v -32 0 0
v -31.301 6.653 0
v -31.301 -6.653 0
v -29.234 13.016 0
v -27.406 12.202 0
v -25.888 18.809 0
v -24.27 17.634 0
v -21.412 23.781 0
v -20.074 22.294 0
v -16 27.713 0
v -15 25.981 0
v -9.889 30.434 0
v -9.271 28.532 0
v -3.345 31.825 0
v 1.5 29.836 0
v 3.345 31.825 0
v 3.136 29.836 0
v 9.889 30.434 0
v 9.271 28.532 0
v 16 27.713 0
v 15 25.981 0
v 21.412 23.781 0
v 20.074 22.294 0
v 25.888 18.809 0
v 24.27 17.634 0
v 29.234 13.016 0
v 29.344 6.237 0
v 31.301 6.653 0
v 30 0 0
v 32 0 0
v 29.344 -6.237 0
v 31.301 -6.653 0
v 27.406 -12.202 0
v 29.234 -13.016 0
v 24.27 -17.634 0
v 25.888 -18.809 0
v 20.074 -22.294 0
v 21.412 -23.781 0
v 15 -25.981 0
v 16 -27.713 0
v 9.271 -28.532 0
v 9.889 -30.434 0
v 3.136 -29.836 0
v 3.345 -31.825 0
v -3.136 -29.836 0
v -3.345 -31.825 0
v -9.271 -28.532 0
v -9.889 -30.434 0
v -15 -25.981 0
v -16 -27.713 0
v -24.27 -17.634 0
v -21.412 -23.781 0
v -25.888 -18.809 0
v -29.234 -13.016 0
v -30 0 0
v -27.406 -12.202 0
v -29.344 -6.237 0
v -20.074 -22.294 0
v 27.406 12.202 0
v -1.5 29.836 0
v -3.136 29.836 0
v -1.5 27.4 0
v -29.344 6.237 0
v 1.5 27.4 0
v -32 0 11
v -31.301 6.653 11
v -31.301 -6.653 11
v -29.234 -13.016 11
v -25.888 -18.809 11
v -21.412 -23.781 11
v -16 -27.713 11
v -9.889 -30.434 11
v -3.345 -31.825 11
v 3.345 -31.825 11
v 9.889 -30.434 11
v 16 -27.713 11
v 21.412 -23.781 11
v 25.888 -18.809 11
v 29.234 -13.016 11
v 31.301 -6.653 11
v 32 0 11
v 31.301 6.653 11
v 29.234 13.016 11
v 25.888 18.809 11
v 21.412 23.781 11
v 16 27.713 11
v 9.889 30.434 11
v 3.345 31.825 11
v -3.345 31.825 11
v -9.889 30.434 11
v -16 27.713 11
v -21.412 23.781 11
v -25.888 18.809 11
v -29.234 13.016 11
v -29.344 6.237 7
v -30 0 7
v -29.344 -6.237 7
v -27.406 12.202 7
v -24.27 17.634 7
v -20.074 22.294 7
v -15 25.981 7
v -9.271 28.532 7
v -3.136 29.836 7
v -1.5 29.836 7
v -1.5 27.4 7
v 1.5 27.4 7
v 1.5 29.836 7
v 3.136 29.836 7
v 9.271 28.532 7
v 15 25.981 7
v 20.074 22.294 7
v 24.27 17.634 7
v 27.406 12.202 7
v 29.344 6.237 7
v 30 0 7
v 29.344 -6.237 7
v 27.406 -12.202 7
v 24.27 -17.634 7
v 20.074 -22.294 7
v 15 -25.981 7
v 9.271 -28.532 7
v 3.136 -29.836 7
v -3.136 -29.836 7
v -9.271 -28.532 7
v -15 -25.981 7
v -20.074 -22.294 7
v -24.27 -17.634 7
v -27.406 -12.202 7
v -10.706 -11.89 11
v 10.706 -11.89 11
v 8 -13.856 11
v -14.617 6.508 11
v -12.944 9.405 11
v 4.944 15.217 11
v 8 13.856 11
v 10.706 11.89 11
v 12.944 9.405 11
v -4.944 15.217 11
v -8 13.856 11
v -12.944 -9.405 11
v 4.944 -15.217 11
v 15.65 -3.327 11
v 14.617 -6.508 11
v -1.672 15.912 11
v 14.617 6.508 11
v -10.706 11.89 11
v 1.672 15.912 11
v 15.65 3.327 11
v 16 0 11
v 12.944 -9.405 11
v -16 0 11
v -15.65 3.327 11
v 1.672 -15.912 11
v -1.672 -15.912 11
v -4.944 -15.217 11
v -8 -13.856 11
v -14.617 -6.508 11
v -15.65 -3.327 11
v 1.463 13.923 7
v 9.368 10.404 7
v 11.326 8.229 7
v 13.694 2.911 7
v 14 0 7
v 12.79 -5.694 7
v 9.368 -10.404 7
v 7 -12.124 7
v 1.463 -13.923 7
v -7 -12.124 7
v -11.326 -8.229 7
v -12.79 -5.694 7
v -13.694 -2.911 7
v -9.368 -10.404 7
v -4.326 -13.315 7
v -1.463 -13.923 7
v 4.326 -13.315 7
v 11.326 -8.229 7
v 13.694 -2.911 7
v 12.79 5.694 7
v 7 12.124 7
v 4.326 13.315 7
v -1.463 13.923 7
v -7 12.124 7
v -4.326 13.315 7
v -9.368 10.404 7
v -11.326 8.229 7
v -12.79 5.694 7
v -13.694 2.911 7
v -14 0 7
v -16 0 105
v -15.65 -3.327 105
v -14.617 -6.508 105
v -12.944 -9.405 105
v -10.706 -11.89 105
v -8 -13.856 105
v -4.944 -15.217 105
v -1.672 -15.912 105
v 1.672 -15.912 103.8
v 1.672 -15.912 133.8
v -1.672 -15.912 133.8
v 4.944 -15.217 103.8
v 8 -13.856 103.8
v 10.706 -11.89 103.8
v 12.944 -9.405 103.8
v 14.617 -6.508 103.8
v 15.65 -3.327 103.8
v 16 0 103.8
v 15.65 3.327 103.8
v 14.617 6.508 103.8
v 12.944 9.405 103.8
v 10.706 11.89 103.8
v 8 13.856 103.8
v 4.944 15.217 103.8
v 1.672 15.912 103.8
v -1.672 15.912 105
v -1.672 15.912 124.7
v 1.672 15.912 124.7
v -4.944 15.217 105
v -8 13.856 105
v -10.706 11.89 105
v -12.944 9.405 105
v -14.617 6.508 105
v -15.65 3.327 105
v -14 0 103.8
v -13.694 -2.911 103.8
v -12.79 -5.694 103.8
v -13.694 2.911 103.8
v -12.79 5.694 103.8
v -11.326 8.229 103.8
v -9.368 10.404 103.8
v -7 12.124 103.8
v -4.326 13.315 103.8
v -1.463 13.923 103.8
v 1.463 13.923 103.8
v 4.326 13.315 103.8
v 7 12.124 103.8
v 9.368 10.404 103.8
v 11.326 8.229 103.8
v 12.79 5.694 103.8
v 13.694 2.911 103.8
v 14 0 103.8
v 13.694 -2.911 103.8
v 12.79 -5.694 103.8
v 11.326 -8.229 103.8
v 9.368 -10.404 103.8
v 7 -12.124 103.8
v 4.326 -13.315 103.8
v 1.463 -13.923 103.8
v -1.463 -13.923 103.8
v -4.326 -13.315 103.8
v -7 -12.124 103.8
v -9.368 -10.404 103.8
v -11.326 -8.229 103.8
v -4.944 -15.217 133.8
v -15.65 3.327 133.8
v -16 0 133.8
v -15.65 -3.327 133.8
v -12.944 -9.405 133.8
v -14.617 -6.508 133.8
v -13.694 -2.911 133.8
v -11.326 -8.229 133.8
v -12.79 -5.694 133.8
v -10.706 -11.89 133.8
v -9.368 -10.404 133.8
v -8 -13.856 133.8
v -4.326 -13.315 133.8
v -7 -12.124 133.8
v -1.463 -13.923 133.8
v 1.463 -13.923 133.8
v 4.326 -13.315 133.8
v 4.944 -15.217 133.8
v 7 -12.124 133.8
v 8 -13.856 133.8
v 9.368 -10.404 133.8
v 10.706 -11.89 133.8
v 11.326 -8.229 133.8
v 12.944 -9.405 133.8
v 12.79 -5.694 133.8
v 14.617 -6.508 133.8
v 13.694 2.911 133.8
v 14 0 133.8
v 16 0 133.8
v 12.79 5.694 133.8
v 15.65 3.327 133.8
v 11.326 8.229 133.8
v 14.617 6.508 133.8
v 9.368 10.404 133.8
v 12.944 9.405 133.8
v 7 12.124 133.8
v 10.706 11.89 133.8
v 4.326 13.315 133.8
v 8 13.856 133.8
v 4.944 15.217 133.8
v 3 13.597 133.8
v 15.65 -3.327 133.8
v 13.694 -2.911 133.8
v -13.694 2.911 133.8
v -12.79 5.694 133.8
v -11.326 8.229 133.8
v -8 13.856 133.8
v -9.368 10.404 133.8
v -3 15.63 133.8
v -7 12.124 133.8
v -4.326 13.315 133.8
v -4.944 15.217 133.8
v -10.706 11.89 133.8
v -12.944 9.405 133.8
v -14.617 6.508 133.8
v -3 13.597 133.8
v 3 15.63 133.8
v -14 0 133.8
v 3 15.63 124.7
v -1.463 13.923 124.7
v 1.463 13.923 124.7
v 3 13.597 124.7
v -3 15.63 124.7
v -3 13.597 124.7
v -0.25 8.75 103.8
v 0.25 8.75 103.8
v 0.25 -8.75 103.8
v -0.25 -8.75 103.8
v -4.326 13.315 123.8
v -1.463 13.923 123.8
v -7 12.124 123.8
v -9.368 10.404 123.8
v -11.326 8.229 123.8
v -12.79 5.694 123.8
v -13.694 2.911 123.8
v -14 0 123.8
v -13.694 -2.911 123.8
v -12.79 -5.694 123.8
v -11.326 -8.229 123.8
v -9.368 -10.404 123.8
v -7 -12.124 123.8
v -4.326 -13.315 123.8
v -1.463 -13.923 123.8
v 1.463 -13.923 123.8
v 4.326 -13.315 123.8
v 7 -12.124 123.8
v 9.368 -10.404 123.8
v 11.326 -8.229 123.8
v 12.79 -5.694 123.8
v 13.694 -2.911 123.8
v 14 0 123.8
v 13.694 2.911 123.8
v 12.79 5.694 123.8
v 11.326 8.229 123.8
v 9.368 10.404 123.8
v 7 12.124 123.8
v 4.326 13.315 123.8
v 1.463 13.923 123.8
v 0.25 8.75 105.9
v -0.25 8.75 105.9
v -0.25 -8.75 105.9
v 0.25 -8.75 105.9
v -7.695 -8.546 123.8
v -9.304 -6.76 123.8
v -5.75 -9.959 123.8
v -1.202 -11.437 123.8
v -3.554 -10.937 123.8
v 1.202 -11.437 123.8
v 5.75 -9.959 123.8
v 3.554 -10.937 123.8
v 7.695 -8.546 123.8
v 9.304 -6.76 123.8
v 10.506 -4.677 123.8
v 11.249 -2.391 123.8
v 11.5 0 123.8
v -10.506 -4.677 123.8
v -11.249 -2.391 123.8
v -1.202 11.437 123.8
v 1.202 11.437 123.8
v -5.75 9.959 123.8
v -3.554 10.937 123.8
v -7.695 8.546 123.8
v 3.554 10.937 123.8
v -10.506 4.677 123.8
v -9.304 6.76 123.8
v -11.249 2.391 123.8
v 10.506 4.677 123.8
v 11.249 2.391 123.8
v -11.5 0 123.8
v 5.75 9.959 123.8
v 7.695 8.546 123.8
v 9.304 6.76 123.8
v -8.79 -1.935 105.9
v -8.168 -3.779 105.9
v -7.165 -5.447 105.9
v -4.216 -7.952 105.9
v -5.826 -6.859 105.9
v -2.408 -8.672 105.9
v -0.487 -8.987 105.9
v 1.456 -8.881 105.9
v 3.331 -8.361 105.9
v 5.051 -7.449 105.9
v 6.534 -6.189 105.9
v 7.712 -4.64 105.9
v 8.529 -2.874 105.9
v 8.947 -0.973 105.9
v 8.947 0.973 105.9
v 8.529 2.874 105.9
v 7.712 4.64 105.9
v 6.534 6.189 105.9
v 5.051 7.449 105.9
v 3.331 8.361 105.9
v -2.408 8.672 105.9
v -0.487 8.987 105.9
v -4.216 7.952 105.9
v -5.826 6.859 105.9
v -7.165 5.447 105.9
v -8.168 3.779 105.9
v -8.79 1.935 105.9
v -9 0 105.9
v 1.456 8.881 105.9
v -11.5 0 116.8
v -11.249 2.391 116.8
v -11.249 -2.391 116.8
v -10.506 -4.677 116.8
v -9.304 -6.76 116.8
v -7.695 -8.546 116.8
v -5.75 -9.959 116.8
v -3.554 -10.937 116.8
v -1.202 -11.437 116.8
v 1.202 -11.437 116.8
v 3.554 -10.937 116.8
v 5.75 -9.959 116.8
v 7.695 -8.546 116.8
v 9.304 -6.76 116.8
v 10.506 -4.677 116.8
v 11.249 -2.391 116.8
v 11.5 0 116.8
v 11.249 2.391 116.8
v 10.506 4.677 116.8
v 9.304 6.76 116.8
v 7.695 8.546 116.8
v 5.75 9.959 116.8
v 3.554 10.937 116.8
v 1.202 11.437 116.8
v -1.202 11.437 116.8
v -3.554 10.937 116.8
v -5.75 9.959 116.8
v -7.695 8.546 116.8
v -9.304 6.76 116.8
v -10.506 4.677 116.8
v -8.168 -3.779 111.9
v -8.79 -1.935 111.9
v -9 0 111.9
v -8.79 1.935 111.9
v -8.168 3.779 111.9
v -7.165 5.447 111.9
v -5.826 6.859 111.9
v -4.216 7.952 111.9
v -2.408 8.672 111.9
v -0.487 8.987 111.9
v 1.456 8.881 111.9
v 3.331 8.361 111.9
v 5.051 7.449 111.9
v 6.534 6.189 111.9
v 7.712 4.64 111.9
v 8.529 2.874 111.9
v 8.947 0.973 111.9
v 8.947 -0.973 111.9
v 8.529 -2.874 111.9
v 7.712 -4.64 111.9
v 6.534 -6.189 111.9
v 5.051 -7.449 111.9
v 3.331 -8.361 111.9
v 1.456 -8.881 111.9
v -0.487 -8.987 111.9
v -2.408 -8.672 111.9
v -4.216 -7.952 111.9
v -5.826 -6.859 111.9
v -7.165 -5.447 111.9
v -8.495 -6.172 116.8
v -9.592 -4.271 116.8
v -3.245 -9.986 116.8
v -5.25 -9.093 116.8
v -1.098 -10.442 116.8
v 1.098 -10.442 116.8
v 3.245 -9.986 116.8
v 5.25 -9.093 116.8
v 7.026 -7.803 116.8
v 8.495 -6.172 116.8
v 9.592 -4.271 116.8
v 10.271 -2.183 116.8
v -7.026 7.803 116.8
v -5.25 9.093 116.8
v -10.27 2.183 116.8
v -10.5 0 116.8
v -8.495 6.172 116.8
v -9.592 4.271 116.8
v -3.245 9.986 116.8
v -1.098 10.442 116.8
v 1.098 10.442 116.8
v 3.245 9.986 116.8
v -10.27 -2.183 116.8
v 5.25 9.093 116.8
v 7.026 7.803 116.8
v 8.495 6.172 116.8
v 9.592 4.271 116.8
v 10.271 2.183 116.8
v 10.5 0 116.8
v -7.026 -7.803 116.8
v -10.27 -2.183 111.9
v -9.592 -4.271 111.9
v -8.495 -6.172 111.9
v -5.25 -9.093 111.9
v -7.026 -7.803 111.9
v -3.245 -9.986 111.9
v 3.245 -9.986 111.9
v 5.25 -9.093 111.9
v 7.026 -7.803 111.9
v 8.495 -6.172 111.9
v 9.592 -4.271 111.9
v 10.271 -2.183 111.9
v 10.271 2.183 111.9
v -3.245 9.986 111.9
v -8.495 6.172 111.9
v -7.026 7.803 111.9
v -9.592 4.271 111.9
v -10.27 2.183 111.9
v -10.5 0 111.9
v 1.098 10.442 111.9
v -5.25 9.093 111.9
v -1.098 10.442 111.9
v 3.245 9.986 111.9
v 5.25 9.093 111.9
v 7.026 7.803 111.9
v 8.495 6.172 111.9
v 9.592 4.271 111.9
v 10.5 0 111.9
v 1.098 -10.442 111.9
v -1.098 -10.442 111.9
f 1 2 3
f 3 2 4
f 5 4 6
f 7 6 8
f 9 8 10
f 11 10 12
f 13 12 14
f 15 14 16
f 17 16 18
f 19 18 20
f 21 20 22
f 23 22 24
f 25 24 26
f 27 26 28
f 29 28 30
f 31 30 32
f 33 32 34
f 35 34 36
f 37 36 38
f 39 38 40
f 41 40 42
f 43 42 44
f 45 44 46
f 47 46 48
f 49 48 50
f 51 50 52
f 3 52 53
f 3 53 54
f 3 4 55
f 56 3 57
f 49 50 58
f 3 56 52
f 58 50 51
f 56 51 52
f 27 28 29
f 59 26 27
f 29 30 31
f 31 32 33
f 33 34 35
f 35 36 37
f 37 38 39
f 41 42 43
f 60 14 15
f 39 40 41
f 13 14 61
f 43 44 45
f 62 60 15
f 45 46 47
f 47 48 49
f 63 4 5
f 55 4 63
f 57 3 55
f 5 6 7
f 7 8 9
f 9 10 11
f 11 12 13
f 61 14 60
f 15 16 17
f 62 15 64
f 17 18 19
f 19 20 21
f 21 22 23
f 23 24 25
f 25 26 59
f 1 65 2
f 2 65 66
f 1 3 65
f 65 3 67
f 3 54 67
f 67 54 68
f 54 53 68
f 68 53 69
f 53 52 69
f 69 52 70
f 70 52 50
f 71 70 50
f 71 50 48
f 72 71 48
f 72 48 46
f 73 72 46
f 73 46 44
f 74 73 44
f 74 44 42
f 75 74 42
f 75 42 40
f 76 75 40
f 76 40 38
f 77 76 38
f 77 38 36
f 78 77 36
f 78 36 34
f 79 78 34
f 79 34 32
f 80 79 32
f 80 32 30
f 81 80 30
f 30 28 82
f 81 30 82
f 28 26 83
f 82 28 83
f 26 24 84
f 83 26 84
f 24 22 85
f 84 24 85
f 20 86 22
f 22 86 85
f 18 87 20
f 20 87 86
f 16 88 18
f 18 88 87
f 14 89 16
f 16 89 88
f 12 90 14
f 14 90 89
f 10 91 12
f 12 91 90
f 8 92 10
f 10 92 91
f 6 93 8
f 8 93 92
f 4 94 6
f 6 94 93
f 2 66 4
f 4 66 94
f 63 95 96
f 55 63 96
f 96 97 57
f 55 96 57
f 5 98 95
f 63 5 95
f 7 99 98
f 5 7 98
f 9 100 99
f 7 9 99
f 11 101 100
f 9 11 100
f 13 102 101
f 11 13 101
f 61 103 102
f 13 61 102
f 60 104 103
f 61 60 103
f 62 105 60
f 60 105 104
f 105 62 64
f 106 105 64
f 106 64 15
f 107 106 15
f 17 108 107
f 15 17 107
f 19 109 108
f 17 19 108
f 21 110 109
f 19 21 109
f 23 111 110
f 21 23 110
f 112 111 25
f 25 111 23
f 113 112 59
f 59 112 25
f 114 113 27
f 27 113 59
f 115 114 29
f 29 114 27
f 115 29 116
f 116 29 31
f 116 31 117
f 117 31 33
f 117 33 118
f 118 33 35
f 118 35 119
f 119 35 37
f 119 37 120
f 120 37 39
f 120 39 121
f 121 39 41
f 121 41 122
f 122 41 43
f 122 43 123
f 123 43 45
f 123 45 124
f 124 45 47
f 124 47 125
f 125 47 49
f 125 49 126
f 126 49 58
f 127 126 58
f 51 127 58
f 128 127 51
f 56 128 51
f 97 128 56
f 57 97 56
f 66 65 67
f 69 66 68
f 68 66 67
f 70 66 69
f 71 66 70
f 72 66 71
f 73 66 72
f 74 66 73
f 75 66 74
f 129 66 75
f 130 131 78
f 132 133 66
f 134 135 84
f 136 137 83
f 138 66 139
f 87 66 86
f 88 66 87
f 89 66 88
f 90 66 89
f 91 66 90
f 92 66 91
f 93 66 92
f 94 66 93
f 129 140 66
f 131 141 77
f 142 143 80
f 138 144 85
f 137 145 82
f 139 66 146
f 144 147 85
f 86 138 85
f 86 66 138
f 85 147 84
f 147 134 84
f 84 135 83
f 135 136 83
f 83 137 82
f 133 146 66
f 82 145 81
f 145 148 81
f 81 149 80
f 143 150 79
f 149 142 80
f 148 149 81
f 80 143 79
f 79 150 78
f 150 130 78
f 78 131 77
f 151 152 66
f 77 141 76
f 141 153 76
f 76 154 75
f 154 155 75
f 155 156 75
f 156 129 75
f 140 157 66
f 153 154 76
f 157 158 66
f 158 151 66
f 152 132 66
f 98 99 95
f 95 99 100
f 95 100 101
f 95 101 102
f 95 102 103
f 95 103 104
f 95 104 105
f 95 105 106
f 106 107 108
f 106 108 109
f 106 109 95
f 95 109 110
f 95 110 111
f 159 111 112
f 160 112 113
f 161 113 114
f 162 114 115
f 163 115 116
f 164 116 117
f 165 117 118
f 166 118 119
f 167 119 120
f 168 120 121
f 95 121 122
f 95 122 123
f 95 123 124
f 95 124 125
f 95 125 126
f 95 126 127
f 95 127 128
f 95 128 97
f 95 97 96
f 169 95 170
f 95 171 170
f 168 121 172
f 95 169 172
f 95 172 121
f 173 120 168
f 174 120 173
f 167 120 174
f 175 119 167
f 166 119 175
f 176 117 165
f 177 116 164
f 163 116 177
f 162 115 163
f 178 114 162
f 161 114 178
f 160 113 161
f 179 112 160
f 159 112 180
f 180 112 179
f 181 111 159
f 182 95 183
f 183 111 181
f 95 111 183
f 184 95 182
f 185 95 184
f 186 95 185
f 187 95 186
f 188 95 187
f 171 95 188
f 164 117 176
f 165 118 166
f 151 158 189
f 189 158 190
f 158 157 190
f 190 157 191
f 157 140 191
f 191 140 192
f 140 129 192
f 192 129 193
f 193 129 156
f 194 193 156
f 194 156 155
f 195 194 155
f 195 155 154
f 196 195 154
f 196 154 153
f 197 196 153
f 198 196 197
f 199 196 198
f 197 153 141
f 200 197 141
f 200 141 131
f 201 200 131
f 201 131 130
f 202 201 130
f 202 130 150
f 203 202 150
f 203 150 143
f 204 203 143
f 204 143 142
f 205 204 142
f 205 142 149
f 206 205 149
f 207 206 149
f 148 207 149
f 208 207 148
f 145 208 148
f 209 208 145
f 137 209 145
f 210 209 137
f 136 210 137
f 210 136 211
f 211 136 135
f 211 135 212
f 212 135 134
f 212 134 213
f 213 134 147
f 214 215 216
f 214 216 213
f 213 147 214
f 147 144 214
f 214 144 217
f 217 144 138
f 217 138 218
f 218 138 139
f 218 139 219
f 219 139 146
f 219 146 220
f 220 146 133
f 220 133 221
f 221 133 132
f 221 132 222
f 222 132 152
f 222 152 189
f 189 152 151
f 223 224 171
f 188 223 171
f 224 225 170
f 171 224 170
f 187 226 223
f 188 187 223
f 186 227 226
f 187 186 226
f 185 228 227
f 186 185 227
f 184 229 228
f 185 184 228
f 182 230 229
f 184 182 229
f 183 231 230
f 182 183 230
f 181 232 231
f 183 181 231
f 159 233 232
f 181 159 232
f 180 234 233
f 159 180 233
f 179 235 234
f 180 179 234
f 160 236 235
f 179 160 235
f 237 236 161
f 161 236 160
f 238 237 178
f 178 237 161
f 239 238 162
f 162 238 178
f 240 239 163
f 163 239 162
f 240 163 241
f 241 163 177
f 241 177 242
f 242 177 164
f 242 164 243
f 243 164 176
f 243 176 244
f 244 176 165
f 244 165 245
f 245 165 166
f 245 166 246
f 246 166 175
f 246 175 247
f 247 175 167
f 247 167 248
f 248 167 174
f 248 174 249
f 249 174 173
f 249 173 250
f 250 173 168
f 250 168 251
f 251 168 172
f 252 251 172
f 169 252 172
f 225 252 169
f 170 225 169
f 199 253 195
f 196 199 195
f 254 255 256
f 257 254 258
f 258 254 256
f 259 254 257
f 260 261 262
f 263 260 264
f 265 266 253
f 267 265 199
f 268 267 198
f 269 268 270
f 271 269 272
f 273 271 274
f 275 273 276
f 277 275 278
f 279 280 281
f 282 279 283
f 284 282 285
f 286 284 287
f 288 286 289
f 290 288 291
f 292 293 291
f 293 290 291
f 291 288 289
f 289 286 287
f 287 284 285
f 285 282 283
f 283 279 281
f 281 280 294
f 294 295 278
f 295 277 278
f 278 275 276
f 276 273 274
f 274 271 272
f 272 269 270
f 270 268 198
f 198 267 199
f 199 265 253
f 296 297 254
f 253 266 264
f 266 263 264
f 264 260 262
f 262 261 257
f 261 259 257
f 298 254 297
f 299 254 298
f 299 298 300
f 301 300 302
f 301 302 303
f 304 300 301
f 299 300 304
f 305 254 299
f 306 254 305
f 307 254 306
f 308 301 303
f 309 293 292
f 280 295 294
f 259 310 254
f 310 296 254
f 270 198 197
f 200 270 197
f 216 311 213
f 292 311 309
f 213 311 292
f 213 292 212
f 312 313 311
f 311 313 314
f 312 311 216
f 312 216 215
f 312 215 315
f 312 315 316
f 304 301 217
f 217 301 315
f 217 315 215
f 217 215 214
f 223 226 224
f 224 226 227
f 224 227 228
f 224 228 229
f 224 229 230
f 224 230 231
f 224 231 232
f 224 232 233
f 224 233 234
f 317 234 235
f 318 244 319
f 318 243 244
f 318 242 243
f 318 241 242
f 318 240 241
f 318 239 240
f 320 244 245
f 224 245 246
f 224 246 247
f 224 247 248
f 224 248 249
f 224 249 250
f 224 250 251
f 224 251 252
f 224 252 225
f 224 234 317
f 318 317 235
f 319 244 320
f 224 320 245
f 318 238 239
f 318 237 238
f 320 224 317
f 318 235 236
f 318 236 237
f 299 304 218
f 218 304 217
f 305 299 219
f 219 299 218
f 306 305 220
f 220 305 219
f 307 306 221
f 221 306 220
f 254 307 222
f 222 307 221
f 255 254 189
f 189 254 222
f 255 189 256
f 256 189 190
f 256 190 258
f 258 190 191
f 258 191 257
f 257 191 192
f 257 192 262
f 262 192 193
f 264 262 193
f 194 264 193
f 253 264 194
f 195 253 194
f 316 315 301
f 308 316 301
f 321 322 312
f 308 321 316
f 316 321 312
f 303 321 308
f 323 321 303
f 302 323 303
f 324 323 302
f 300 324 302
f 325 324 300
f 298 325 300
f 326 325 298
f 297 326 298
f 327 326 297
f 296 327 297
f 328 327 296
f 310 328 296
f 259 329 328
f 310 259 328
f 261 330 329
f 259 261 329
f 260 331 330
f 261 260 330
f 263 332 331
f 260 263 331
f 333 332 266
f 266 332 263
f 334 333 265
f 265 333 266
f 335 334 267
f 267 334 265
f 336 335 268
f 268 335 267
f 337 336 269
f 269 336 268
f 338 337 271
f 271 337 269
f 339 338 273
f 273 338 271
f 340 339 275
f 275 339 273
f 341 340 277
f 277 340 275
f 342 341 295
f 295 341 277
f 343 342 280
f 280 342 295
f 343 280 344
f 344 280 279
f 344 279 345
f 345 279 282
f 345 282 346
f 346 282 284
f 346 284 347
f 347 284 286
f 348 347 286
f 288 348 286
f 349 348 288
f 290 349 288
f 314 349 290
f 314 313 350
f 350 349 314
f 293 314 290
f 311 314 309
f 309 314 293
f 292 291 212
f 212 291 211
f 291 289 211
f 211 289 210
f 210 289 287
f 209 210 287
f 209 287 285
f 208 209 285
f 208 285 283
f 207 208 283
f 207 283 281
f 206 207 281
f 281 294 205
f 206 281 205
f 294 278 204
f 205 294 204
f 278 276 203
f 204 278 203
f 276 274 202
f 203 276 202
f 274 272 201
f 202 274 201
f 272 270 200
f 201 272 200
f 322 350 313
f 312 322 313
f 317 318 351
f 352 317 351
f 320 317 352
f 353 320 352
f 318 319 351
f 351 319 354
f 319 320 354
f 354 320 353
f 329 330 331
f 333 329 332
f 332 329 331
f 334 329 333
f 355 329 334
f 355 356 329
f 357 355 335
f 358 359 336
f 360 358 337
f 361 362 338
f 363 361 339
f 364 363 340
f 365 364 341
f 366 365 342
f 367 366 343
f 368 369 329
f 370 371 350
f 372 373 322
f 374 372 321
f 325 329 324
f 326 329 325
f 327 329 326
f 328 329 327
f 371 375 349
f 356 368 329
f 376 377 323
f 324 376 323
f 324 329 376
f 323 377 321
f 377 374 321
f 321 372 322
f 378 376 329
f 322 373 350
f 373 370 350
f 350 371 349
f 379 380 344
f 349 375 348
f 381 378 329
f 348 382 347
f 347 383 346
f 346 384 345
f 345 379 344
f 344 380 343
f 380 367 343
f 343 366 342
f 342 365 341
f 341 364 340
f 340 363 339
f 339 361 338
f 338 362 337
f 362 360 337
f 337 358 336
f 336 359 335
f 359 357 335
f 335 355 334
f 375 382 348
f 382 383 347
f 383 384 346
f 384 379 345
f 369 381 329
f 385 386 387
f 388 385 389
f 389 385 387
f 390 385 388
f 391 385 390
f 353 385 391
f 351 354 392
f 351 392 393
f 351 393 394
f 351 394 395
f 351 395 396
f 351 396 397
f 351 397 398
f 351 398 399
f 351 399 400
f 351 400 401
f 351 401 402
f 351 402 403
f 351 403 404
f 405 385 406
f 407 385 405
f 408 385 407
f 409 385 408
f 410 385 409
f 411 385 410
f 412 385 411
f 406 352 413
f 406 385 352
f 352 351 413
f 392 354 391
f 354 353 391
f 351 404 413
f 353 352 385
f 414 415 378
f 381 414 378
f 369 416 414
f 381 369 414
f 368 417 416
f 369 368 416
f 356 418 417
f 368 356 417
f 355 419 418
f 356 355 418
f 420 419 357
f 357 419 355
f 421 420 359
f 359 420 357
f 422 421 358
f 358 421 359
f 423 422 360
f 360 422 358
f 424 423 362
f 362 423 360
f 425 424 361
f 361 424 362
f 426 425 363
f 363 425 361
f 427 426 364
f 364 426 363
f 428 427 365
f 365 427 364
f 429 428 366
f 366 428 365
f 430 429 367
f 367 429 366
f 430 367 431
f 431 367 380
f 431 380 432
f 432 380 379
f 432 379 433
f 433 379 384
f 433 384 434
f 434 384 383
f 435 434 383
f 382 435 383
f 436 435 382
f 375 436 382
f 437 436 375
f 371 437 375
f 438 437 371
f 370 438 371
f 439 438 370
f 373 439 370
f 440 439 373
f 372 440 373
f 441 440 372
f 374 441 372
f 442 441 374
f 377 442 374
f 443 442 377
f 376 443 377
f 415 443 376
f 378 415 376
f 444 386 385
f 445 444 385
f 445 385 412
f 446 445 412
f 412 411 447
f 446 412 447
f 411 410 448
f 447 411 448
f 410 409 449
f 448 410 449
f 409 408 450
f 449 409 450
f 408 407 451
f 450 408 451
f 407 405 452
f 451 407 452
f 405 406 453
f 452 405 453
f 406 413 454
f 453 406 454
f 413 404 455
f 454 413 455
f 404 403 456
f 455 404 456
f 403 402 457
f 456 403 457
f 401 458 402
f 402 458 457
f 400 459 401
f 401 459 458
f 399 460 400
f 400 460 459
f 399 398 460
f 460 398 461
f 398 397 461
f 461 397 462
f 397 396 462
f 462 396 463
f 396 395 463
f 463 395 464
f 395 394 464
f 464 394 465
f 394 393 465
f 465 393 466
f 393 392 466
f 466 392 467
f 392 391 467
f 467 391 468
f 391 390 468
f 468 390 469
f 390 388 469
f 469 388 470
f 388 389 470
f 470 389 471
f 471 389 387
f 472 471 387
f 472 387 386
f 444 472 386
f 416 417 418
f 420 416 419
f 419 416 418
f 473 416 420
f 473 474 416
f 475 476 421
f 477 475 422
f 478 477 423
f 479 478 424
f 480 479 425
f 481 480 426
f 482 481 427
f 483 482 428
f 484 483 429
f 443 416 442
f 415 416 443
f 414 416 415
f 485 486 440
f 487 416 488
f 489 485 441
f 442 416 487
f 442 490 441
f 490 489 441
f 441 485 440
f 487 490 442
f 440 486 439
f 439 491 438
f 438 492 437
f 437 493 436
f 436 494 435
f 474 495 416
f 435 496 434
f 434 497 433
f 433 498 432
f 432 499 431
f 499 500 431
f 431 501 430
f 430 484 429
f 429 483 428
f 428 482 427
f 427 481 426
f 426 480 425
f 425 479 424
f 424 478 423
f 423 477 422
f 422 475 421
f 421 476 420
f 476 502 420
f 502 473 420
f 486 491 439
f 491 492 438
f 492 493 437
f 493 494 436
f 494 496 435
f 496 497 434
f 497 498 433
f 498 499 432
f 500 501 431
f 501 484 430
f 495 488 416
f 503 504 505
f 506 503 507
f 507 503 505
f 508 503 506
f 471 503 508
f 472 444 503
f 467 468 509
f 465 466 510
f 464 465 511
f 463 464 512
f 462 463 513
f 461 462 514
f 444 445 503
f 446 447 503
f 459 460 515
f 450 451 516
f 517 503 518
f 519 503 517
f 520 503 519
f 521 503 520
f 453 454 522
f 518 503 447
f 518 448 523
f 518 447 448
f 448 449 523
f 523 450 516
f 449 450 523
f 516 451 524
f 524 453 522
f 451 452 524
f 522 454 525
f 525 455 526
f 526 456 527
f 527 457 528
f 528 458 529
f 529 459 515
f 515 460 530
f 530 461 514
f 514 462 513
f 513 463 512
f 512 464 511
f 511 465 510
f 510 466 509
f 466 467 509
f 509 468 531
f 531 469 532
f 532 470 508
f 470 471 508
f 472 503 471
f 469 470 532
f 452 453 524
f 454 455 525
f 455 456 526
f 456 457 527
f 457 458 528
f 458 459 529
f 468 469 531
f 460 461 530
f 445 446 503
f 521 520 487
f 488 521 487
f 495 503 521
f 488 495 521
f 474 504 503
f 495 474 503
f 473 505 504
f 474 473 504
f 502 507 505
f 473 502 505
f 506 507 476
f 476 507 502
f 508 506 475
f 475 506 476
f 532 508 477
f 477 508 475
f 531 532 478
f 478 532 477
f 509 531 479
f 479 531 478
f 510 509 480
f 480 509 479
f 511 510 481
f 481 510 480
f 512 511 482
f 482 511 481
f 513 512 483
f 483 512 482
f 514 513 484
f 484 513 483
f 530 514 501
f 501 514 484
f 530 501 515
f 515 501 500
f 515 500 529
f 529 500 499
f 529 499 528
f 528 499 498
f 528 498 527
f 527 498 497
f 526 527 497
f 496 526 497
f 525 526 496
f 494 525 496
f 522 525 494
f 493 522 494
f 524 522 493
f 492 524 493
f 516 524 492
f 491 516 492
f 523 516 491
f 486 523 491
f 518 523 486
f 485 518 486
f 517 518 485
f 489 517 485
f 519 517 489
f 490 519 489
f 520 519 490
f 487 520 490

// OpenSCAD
// file: settingsLenghts.scad
//Ancho de la pared
pared  = 2;
//Radio del centro hueco
radioC = 11;
//Alto de la capa de apertura
aperH = 5.5;
//Ancho de la apertura
aperW = 5+1.1;//Ancho mas holgura
//Ancho del lente macro
macroW = 9.3;
//Profundidad del macro
macroH = 3;
//Profundidad parte de atras y delante
profDelante = 6;
profAtras = 6;
//Ceja entre uniones de cilindros
cejaH = 6;
guiaParedW = 2;
tmpHolg = 1.8;


//Correcc

//
//CÁMARA
camP = 3;//Grueso de la pared del presente modelo
camW = 105;//Ancho de la cámara
camH = 61;//Alto de la cámara
camD = 23.5;//Profundidad de la cámara
camHlg = 6;//Holgura que se deja para los tornillos
camLW = 57/2;//Radio del exterior del lente
torW  = 2;//Radio

//
//Ancho de tubo principal (grande)
mcW = 32;//radio
mcH = 28;

//Dimensiones del difractador
diffW = 51;//Alto y Ancho
diffD=1;//Profundidad del difractador
diffWinW=36;//Ancho de la ventana de difracción
diffWinH=24;//Alto de la ventana de difracción

//
//Adquisición de luz
luzHBig = 10; //donde va el tornillo
luzWBig = 28; //27:diametro donde va el tornillo
luzHBigT = 4; //alto del tornillo
luzWBigT = 6; //6: ancho del tornillo
luzHRosca = 7; //donde va la rosca
luzWRosca = 23; //22:diametro de donde va la rosca



//Cuadro guia para que no se mueva
guiaH = cejaH;
guiaW = 3;



module creaPared(h){
	difference(){
		//Pone el cilindro principal
		cylinder(r=mcW,h);

		//Le quita el contorno exterior
		translate([0,0,-0.1])
		cylinder(r=mcW-pared,h+0.2);
	}
}
module creaGuiaTornilloCentrada(){
	translate([-luzWBigT/2,-luzWBigT/2,0])
	cube([luzWBigT,luzWBigT,luzHBig-1+0.2]);
}
module creaGuiaTornilloCentradaArea(){
	tmpW = luzWBigT + pared;
	tmpH = luzHBig  + pared;
	translate([-tmpW/2,-tmpW/2,0])
	cube([tmpW,tmpW,tmpH]);
}
module creaGuia(h){
	//Pone el circulo soporte
	difference(){
		cylinder(r=mcW,h);
		translate([0,0,-0.1])
		cylinder(r=mcW-pared,h+0.2);
	}
	//Pone la guia1
	translate([0,mcW-pared-(guiaW/2)+0.4,0])
	creaGuiaCentrada(h);
}
module creaGuiaHembra(h){
	//Pone el circulo soporte
	tmpW = mcW-guiaW;	
	creaPared(sopH);
	sopH = 1.35;
	
	//Pone la pared de la guia
	difference(){
		cylinder(r=(mcW-pared),sopH+h);
		translate([0,0,-0.1])
		cylinder(r=(mcW-pared-guiaParedW),sopH+h+0.2);
		//Pone la guia
		translate([-(guiaW/3),tmpW,sopH])
		creaGuiaCentrada(sopH+h+0.2);
		translate([(guiaW/3),tmpW,sopH])
		creaGuiaCentrada(sopH+h+0.2);
	}
}
module creaGuiaCentrada(h){
	translate([-guiaW/2,-guiaW/2,0])
	cube([guiaW,guiaW,h]);
}
// main file
include <settingsLenghts.scad>


/////////////////////////////////////

delgadoH = 93;

aperW = 0.5;
aperH = 17.5;

cejaH = 7;//6+poquito

macroW = 21;//20:diametro
macroH = 11;

macroBaseW = 18;//17:diametro
macroBaseH = 6;
macroNoBaseH = macroH-macroBaseH;

tmpPared = pared*2;

crearBaseYTubo();

translate([
				0,
				0,
				delgadoH+luzHBig+luzHRosca+
				pared+(pared*2)+cejaH-0.2+macroH
			])
rotate([0,180,0])
crearBaseAdqLuz();

//Creamos cuadro de apertura
//tmpAperW = aperW+pared;
//tmpAperH = cejaH+delgadoH-0.2;
////translate([0,0,cejaH])
//difference(){
//
//	//Pared
//	translate([-tmpAperW/2,-tmpAperW/2,0])
//	cube([tmpAperW,tmpAperW,tmpAperH+cejaH]);
//
//	//Centro
//	translate([-aperW/2,-aperW/2,-0.1])
//	cube([aperW,aperW,tmpAperH+cejaH+0.2]);
//
//}

//Cerramos el hueco del cuadro de apertura
//translate([0, 0, cejaH])
//difference(){
//	cylinder(r=(luzWBig/2)+1,pared);
//	
//	//Apertura
//	translate([-aperW/2,-aperW/2,-0.1])
//	cube([aperW,aperW,tmpAperH+0.2]);
//}



module crearBaseAdqLuz(){
	
	difference(){
		//Toda el área de trabajo
		cylinder(
					r=(luzWBig/2)+pared,
					luzHBig+luzHRosca+pared+macroH
		  	 	 );

		//Cilindro para que entre lente 
		//adquicisión de luz
		translate([0, 0, -0.1])
		cylinder(r=luzWBig/2,luzHBig+0.1);

		//Espacio para que entre la rosca
		translate([0, 0, luzHBig-0.1])
		cylinder(r=luzWRosca/2,luzHRosca+0.1);
		
		//Área para que entre el macro forzado
		translate([0,0,
							luzHBig+
							luzHRosca-0.1])
		cylinder(r=macroW/2,macroNoBaseH);

		//Área de la base del macro
		translate([0,0,
							luzHBig+luzHRosca+
							macroNoBaseH-0.2
				   ])
		cylinder(r=macroBaseW/2,macroBaseH+0.1);


		//Apertura lineal		
		translate(
						[-aperW/2,
						 -aperH/2,
						 luzHBig+luzHRosca+
						 macroNoBaseH+macroBaseH-0.2
						]
					)
		cube([aperW,aperH,macroH]);


		//Área del tornillo
		translate([0,luzWBig/2,-0.1])
		creaGuiaTornilloCentrada();

	}
}

module crearBaseYTubo(){

	//Pone guia macho
	creaGuia(cejaH);

	//Pone la extensión
	translate([0,0,cejaH])
	creaPared(1);

	//Crea el techo
	translate([0,0,cejaH])
	difference(){
		cylinder(r=mcW,tmpPared);
		translate([0,0,-0.1])
		cylinder(r=(luzWBig/2)+pared,cejaH);
	}

	//Pone pared del cilindro grande	
	translate([0,0,cejaH])
	difference(){
		cylinder(
					r=(luzWBig/2)+pared,
					delgadoH+tmpPared+1
				 );
		translate([0,0,-0.1])
		cylinder(
					r=(luzWBig/2),
					delgadoH+tmpPared+1+0.2
				  );
	}

}
